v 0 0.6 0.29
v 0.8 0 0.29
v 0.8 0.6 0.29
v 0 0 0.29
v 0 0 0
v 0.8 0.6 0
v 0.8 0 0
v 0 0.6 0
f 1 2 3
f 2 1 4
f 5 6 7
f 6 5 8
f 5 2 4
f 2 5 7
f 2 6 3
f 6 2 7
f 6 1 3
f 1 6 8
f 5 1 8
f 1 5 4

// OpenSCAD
module box()
{
    //cube(0.35,0.125,0.15);
    cube([0.80,0.6,0.29]);
}
box();
